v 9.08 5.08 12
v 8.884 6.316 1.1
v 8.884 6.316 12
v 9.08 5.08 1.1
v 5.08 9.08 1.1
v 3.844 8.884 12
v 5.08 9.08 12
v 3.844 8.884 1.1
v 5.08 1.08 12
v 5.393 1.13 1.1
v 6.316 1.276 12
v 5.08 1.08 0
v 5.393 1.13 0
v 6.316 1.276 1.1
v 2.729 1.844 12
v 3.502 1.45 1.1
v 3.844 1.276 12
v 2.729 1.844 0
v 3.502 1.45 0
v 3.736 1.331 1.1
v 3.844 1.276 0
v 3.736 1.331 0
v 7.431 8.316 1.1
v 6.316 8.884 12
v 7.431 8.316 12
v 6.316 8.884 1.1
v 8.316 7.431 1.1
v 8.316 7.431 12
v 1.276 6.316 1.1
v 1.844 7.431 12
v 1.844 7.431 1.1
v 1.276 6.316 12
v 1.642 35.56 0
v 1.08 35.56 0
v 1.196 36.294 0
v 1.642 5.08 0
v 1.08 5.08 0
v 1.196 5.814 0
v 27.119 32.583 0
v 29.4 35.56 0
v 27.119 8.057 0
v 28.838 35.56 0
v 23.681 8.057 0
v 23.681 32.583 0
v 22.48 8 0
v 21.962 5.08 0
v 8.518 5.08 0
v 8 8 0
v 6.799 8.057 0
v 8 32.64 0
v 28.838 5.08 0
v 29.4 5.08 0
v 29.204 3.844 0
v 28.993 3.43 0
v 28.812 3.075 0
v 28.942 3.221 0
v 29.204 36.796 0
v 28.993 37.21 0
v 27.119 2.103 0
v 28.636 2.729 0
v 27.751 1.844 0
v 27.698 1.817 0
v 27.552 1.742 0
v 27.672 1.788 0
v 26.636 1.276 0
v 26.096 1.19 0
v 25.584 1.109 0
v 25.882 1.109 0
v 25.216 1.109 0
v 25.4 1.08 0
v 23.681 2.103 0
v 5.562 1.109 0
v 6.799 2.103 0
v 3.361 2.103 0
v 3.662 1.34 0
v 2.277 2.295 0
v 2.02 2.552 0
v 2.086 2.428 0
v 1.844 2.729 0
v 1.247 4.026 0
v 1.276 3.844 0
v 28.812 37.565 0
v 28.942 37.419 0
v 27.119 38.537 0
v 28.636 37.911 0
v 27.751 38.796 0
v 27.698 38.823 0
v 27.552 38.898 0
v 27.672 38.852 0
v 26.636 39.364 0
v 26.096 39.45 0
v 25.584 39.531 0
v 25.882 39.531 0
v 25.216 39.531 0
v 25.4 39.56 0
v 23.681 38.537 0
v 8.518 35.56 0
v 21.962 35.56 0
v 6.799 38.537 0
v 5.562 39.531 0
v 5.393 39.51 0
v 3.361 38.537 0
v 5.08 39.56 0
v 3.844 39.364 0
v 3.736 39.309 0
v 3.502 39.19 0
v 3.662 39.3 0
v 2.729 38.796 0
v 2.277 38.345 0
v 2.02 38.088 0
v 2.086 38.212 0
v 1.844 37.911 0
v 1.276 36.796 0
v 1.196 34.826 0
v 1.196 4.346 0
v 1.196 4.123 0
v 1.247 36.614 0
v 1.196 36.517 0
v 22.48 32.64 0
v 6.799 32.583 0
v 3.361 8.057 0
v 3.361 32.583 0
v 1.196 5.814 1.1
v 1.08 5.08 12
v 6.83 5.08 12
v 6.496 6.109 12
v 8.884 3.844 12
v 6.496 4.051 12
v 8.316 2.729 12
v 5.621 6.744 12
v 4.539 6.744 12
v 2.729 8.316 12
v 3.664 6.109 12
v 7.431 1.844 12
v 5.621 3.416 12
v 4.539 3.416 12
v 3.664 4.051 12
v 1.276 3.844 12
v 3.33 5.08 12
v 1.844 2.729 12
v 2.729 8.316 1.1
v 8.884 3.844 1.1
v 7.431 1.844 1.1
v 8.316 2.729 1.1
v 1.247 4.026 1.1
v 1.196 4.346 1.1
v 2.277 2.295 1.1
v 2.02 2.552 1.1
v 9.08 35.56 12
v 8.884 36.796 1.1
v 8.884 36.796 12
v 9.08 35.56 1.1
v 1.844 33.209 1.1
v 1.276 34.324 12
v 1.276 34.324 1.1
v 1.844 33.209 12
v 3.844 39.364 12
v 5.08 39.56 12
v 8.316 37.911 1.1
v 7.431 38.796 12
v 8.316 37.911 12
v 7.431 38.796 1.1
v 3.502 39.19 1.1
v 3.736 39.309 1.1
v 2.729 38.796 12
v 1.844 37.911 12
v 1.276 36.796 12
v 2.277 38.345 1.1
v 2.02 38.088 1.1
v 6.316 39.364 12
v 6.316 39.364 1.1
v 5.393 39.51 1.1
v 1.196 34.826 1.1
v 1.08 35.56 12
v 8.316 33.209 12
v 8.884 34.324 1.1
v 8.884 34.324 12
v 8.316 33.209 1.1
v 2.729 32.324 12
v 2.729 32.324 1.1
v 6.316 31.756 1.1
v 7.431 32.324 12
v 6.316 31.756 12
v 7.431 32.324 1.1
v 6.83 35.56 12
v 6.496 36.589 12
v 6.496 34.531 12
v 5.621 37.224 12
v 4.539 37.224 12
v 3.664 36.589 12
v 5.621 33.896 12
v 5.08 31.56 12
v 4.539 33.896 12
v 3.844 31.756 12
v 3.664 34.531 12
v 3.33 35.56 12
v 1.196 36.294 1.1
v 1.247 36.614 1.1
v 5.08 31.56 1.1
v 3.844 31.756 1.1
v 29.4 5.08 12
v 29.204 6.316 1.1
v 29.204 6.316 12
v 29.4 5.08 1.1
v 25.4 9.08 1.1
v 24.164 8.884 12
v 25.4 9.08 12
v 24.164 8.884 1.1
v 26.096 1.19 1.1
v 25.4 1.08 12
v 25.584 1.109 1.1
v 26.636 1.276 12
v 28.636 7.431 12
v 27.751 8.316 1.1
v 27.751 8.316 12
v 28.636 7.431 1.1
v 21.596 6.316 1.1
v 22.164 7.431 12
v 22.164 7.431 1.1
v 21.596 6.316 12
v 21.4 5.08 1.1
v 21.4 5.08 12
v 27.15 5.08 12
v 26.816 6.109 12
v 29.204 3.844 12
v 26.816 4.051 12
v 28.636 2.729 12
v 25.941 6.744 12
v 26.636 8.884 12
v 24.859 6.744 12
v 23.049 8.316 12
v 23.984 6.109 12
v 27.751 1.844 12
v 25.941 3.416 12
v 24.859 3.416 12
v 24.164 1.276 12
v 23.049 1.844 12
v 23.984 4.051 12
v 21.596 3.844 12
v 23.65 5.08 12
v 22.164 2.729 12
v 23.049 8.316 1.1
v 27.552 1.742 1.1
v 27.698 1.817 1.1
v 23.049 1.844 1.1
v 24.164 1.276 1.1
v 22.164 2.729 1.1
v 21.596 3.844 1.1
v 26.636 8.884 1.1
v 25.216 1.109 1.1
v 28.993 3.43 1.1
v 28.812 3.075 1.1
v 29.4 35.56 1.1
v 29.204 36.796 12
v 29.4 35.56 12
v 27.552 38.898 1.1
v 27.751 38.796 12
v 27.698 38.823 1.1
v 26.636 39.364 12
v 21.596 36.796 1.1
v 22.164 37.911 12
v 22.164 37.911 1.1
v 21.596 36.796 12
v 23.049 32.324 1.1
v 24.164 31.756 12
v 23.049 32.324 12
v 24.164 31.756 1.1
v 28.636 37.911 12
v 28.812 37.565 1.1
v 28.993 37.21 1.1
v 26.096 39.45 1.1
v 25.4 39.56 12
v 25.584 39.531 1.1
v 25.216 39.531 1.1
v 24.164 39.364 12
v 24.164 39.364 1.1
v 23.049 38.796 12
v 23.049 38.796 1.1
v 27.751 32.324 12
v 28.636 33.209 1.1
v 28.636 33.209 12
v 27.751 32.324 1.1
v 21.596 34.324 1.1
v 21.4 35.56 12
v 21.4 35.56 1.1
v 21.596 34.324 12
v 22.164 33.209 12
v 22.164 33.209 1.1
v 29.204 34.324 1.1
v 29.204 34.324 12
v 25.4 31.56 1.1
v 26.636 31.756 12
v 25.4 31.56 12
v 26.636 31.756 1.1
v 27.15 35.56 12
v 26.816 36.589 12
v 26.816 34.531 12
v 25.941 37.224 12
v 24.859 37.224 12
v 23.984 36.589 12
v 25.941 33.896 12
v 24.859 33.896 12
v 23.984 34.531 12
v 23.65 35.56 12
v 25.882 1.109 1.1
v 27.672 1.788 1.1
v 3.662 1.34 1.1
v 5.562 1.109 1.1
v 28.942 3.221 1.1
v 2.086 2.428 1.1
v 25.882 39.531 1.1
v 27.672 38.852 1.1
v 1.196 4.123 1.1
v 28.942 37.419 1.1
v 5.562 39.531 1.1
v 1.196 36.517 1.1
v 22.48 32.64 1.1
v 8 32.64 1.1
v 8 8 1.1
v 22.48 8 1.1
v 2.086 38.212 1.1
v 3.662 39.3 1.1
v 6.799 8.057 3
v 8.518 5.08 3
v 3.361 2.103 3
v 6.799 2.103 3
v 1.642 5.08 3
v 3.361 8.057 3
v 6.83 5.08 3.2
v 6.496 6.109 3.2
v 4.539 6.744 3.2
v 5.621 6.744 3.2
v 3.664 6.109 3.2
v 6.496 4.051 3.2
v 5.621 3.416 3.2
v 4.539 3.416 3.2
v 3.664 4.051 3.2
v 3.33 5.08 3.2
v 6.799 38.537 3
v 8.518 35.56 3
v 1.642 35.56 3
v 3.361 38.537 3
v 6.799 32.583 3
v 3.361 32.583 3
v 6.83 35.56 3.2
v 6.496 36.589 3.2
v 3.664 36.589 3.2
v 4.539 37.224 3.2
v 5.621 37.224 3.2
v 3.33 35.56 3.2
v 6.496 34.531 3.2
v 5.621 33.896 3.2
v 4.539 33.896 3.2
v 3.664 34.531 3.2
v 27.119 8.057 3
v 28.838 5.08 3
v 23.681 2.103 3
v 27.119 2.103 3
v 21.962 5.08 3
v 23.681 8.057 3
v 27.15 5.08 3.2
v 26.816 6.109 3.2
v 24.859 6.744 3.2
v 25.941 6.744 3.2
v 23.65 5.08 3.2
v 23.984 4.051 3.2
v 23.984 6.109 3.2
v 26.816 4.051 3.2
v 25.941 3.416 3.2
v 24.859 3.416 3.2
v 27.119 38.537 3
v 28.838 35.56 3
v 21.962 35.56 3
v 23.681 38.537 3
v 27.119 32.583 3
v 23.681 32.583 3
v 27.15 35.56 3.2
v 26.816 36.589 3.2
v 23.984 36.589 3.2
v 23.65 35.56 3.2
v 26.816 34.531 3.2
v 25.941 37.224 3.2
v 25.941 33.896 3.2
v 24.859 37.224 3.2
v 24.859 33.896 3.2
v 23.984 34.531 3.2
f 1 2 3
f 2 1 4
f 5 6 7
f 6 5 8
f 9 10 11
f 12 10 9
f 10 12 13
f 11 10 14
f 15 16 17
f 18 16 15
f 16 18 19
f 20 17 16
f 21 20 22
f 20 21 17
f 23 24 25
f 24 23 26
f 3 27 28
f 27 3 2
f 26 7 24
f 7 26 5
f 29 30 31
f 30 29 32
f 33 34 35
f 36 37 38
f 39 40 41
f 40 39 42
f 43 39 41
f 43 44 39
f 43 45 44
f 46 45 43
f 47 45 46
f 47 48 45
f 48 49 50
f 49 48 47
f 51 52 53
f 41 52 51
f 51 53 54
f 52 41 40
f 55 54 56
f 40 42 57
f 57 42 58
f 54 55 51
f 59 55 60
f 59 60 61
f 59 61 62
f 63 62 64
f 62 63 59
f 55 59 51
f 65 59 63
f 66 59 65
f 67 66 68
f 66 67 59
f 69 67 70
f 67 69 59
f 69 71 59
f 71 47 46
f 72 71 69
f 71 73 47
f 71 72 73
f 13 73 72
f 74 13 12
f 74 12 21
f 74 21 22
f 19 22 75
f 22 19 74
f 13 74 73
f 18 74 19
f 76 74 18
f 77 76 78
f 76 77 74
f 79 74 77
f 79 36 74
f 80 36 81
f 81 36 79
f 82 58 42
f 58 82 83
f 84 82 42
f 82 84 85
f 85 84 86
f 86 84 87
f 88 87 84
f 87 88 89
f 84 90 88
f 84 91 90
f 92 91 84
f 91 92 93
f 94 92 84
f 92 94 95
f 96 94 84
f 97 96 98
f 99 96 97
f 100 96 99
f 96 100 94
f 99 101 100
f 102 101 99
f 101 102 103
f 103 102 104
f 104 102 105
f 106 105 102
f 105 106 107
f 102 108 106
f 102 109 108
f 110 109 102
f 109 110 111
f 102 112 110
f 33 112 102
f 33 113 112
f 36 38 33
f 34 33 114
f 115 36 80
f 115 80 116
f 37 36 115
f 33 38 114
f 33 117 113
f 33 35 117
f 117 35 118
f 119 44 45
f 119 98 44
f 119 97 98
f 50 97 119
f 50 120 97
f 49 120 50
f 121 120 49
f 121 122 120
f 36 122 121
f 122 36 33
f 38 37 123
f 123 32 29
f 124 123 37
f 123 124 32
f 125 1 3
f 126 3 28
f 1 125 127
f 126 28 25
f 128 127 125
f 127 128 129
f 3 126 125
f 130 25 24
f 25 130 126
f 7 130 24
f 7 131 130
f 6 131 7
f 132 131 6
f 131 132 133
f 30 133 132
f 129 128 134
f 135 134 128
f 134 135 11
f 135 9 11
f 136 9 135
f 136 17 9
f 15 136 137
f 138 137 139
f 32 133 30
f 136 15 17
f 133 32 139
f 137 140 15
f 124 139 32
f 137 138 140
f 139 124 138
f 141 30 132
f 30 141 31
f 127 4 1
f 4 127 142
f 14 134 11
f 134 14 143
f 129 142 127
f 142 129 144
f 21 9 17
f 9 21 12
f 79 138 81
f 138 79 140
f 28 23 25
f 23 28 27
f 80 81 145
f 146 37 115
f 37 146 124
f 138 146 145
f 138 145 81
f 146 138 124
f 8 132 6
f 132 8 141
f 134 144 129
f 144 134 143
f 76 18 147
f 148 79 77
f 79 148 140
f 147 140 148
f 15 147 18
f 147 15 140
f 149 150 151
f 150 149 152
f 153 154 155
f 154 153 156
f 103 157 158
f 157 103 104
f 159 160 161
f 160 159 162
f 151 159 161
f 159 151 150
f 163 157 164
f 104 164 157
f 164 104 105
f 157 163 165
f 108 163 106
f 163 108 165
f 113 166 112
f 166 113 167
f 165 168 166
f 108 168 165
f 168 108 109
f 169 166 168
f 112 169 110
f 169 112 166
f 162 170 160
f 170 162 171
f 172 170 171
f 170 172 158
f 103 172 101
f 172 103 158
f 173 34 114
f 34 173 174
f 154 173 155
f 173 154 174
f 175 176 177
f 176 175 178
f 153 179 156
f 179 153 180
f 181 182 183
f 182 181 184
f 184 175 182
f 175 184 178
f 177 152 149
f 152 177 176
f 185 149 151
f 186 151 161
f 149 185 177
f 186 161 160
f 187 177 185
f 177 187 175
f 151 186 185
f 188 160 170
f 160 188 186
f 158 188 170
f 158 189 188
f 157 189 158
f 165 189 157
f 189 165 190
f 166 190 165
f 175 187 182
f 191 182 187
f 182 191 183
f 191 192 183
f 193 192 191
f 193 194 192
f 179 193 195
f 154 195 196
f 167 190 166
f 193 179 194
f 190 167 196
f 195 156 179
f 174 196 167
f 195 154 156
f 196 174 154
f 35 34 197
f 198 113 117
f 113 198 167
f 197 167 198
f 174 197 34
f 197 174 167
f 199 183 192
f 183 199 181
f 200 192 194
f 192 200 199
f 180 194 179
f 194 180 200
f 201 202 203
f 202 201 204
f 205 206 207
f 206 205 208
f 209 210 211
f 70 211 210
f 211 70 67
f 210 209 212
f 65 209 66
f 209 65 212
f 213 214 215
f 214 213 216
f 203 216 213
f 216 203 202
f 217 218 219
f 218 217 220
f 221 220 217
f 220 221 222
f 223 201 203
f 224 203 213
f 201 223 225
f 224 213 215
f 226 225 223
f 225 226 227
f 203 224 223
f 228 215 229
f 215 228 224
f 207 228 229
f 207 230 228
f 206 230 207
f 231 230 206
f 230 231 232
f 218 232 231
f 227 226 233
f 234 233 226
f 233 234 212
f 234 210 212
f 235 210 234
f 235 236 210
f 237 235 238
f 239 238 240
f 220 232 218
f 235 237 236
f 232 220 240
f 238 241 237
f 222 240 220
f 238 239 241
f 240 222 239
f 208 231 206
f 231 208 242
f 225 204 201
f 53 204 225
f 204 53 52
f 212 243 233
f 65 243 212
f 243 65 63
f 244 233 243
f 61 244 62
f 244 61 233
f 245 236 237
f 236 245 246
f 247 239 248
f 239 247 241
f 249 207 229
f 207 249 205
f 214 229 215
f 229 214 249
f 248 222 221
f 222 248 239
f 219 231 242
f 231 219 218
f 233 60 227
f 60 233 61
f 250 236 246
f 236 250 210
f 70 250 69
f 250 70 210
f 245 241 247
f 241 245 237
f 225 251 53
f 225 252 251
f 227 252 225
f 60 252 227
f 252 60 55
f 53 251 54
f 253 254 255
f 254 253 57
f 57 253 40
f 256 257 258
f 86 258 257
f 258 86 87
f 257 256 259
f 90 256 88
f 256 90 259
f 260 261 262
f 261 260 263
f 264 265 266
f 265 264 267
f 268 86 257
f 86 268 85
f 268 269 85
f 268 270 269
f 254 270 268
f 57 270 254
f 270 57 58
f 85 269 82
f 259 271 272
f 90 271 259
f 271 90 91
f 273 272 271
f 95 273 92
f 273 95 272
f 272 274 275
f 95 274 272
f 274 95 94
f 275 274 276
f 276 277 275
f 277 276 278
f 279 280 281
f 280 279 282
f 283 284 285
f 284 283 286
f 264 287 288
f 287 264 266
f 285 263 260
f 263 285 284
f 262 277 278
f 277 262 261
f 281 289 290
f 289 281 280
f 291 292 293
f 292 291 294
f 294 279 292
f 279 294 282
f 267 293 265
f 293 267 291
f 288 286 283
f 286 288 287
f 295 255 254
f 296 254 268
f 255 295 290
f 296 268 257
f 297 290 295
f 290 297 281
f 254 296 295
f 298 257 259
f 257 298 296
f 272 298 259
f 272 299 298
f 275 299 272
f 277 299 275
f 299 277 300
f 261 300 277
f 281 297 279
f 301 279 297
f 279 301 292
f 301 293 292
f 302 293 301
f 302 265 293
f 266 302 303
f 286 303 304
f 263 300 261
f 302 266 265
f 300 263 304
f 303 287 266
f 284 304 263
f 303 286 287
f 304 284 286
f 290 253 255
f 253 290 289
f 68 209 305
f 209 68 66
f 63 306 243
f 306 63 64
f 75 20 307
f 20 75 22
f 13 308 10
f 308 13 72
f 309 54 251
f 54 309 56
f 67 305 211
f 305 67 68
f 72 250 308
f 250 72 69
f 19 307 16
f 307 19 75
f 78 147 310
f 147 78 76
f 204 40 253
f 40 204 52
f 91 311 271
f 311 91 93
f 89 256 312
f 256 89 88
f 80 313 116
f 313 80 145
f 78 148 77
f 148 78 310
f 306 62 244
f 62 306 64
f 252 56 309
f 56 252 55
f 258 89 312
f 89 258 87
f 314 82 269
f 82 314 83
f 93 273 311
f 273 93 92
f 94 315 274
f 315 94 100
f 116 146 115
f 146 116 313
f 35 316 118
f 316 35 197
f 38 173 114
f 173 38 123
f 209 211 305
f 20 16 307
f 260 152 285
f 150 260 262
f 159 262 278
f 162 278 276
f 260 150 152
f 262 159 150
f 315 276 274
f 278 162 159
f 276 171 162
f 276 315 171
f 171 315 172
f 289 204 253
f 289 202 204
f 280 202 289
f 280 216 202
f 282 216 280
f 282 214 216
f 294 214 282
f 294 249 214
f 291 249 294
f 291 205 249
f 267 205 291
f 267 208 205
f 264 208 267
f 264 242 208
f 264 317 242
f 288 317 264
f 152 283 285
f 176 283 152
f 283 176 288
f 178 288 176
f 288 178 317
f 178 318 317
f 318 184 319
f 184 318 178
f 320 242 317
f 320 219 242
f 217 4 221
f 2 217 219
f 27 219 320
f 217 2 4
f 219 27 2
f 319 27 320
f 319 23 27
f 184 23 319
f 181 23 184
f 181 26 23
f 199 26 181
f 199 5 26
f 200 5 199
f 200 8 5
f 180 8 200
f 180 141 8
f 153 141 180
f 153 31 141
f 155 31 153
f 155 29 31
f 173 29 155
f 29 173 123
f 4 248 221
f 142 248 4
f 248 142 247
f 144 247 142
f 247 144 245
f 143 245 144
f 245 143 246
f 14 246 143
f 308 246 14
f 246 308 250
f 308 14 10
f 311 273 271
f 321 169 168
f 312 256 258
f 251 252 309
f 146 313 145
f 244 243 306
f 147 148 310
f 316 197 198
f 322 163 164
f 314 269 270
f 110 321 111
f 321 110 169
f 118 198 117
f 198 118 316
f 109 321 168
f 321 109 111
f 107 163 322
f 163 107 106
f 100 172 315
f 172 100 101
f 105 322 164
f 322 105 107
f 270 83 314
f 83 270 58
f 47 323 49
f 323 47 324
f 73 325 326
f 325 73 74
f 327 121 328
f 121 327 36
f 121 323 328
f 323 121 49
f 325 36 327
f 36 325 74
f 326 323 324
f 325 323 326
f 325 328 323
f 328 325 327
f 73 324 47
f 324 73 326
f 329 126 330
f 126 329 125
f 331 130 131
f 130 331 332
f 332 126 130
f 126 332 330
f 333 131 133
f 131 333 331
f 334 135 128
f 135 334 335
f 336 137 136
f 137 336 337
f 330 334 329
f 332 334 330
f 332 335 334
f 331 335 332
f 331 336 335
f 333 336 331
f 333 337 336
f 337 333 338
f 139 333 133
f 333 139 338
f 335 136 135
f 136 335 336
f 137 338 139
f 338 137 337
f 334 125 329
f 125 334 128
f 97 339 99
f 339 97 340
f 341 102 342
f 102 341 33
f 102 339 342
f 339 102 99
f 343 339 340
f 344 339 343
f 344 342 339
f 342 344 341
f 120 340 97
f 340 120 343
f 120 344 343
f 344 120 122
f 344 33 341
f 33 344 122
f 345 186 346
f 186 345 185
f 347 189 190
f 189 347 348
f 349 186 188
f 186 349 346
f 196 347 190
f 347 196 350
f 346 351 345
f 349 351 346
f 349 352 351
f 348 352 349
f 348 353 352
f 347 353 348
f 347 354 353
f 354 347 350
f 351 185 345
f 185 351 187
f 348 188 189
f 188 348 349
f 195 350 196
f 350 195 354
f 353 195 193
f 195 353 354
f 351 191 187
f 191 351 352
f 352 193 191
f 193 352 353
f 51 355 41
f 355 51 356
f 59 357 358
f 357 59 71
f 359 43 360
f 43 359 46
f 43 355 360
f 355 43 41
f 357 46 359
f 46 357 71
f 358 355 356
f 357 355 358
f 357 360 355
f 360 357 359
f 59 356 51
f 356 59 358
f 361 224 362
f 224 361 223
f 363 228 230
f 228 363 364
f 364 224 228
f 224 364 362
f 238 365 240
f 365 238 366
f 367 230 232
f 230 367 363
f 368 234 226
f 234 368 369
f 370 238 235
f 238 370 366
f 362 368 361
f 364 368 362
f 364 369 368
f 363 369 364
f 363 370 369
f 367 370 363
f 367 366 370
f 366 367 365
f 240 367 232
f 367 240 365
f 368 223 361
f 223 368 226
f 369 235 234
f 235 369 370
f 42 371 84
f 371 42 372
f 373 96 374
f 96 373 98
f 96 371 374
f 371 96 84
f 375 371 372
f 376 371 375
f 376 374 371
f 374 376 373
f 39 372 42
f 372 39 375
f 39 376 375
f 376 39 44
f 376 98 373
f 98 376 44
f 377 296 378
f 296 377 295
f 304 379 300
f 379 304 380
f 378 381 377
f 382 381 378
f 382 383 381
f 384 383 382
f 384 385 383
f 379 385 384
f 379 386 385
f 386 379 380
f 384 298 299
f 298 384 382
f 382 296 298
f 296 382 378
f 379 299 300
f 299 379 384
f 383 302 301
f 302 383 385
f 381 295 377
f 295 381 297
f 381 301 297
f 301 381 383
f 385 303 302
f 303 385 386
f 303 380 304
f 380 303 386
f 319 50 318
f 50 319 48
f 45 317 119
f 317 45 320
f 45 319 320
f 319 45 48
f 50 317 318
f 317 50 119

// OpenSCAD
x_holes = 3;
y_holes = 4;
pedestal_height = 12;   // designed for use the MLAB standard 20mm screws.

MLAB_grid = 10.16;
thickness = 1;          // thickness of bottom belt
pile_radius = 4;        // radius of pile around screw
x_size = x_holes * MLAB_grid ;
y_size = y_holes * MLAB_grid ;
mount_hole = 3.5;
//nut_size = 6.8;  //size suitable for PLA material
nut_size = 6.7;  //size suitable for ABS material
clear = 0.175;




MLAB_grid_xoffset = MLAB_grid/2;
MLAB_grid_yoffset = MLAB_grid/2;

grid_list = [for (j = [MLAB_grid_xoffset : MLAB_grid: x_size], i = [MLAB_grid_yoffset :MLAB_grid: y_size]) 
if ((j>(x_size-10) && i>(y_size-10)) || (j<10 && i<10) || (j<10 && i>(y_size-10)) || (j>(x_size-10) && i<10) ) [j, i] ];


difference () {
    union () {
        for (j = grid_list) {
            translate (concat(j, [0]))
            cylinder (h = pedestal_height, r= pile_radius, $fn=20);
        }

            translate ([MLAB_grid_xoffset , MLAB_grid_yoffset , 0])
                minkowski() {
                cube([x_size - 2*(MLAB_grid/2 - pile_radius) - 2*pile_radius, y_size - 2*(MLAB_grid/2 - pile_radius) - 2*pile_radius, thickness]);          // base plastics brick
                cylinder(r=pile_radius,h=0.1);
            }
    }
    
    translate ([2*pile_radius, 2*pile_radius, 0]) // central hole in module support
        cube([x_size-4*pile_radius, y_size-4*pile_radius, 2*thickness]);          

    // MLAB grid holes
    for (j = grid_list) {
            translate (concat(j, [0]))
            cylinder (h = 3, r= (nut_size+clear)/2, $fn=6);
            translate (concat(j, [3.2]))  // one solid layer for slicer (the holes will be pierced on demand )
            cylinder (h = pedestal_height, r= mount_hole/2, $fn=10);
    }    
}
